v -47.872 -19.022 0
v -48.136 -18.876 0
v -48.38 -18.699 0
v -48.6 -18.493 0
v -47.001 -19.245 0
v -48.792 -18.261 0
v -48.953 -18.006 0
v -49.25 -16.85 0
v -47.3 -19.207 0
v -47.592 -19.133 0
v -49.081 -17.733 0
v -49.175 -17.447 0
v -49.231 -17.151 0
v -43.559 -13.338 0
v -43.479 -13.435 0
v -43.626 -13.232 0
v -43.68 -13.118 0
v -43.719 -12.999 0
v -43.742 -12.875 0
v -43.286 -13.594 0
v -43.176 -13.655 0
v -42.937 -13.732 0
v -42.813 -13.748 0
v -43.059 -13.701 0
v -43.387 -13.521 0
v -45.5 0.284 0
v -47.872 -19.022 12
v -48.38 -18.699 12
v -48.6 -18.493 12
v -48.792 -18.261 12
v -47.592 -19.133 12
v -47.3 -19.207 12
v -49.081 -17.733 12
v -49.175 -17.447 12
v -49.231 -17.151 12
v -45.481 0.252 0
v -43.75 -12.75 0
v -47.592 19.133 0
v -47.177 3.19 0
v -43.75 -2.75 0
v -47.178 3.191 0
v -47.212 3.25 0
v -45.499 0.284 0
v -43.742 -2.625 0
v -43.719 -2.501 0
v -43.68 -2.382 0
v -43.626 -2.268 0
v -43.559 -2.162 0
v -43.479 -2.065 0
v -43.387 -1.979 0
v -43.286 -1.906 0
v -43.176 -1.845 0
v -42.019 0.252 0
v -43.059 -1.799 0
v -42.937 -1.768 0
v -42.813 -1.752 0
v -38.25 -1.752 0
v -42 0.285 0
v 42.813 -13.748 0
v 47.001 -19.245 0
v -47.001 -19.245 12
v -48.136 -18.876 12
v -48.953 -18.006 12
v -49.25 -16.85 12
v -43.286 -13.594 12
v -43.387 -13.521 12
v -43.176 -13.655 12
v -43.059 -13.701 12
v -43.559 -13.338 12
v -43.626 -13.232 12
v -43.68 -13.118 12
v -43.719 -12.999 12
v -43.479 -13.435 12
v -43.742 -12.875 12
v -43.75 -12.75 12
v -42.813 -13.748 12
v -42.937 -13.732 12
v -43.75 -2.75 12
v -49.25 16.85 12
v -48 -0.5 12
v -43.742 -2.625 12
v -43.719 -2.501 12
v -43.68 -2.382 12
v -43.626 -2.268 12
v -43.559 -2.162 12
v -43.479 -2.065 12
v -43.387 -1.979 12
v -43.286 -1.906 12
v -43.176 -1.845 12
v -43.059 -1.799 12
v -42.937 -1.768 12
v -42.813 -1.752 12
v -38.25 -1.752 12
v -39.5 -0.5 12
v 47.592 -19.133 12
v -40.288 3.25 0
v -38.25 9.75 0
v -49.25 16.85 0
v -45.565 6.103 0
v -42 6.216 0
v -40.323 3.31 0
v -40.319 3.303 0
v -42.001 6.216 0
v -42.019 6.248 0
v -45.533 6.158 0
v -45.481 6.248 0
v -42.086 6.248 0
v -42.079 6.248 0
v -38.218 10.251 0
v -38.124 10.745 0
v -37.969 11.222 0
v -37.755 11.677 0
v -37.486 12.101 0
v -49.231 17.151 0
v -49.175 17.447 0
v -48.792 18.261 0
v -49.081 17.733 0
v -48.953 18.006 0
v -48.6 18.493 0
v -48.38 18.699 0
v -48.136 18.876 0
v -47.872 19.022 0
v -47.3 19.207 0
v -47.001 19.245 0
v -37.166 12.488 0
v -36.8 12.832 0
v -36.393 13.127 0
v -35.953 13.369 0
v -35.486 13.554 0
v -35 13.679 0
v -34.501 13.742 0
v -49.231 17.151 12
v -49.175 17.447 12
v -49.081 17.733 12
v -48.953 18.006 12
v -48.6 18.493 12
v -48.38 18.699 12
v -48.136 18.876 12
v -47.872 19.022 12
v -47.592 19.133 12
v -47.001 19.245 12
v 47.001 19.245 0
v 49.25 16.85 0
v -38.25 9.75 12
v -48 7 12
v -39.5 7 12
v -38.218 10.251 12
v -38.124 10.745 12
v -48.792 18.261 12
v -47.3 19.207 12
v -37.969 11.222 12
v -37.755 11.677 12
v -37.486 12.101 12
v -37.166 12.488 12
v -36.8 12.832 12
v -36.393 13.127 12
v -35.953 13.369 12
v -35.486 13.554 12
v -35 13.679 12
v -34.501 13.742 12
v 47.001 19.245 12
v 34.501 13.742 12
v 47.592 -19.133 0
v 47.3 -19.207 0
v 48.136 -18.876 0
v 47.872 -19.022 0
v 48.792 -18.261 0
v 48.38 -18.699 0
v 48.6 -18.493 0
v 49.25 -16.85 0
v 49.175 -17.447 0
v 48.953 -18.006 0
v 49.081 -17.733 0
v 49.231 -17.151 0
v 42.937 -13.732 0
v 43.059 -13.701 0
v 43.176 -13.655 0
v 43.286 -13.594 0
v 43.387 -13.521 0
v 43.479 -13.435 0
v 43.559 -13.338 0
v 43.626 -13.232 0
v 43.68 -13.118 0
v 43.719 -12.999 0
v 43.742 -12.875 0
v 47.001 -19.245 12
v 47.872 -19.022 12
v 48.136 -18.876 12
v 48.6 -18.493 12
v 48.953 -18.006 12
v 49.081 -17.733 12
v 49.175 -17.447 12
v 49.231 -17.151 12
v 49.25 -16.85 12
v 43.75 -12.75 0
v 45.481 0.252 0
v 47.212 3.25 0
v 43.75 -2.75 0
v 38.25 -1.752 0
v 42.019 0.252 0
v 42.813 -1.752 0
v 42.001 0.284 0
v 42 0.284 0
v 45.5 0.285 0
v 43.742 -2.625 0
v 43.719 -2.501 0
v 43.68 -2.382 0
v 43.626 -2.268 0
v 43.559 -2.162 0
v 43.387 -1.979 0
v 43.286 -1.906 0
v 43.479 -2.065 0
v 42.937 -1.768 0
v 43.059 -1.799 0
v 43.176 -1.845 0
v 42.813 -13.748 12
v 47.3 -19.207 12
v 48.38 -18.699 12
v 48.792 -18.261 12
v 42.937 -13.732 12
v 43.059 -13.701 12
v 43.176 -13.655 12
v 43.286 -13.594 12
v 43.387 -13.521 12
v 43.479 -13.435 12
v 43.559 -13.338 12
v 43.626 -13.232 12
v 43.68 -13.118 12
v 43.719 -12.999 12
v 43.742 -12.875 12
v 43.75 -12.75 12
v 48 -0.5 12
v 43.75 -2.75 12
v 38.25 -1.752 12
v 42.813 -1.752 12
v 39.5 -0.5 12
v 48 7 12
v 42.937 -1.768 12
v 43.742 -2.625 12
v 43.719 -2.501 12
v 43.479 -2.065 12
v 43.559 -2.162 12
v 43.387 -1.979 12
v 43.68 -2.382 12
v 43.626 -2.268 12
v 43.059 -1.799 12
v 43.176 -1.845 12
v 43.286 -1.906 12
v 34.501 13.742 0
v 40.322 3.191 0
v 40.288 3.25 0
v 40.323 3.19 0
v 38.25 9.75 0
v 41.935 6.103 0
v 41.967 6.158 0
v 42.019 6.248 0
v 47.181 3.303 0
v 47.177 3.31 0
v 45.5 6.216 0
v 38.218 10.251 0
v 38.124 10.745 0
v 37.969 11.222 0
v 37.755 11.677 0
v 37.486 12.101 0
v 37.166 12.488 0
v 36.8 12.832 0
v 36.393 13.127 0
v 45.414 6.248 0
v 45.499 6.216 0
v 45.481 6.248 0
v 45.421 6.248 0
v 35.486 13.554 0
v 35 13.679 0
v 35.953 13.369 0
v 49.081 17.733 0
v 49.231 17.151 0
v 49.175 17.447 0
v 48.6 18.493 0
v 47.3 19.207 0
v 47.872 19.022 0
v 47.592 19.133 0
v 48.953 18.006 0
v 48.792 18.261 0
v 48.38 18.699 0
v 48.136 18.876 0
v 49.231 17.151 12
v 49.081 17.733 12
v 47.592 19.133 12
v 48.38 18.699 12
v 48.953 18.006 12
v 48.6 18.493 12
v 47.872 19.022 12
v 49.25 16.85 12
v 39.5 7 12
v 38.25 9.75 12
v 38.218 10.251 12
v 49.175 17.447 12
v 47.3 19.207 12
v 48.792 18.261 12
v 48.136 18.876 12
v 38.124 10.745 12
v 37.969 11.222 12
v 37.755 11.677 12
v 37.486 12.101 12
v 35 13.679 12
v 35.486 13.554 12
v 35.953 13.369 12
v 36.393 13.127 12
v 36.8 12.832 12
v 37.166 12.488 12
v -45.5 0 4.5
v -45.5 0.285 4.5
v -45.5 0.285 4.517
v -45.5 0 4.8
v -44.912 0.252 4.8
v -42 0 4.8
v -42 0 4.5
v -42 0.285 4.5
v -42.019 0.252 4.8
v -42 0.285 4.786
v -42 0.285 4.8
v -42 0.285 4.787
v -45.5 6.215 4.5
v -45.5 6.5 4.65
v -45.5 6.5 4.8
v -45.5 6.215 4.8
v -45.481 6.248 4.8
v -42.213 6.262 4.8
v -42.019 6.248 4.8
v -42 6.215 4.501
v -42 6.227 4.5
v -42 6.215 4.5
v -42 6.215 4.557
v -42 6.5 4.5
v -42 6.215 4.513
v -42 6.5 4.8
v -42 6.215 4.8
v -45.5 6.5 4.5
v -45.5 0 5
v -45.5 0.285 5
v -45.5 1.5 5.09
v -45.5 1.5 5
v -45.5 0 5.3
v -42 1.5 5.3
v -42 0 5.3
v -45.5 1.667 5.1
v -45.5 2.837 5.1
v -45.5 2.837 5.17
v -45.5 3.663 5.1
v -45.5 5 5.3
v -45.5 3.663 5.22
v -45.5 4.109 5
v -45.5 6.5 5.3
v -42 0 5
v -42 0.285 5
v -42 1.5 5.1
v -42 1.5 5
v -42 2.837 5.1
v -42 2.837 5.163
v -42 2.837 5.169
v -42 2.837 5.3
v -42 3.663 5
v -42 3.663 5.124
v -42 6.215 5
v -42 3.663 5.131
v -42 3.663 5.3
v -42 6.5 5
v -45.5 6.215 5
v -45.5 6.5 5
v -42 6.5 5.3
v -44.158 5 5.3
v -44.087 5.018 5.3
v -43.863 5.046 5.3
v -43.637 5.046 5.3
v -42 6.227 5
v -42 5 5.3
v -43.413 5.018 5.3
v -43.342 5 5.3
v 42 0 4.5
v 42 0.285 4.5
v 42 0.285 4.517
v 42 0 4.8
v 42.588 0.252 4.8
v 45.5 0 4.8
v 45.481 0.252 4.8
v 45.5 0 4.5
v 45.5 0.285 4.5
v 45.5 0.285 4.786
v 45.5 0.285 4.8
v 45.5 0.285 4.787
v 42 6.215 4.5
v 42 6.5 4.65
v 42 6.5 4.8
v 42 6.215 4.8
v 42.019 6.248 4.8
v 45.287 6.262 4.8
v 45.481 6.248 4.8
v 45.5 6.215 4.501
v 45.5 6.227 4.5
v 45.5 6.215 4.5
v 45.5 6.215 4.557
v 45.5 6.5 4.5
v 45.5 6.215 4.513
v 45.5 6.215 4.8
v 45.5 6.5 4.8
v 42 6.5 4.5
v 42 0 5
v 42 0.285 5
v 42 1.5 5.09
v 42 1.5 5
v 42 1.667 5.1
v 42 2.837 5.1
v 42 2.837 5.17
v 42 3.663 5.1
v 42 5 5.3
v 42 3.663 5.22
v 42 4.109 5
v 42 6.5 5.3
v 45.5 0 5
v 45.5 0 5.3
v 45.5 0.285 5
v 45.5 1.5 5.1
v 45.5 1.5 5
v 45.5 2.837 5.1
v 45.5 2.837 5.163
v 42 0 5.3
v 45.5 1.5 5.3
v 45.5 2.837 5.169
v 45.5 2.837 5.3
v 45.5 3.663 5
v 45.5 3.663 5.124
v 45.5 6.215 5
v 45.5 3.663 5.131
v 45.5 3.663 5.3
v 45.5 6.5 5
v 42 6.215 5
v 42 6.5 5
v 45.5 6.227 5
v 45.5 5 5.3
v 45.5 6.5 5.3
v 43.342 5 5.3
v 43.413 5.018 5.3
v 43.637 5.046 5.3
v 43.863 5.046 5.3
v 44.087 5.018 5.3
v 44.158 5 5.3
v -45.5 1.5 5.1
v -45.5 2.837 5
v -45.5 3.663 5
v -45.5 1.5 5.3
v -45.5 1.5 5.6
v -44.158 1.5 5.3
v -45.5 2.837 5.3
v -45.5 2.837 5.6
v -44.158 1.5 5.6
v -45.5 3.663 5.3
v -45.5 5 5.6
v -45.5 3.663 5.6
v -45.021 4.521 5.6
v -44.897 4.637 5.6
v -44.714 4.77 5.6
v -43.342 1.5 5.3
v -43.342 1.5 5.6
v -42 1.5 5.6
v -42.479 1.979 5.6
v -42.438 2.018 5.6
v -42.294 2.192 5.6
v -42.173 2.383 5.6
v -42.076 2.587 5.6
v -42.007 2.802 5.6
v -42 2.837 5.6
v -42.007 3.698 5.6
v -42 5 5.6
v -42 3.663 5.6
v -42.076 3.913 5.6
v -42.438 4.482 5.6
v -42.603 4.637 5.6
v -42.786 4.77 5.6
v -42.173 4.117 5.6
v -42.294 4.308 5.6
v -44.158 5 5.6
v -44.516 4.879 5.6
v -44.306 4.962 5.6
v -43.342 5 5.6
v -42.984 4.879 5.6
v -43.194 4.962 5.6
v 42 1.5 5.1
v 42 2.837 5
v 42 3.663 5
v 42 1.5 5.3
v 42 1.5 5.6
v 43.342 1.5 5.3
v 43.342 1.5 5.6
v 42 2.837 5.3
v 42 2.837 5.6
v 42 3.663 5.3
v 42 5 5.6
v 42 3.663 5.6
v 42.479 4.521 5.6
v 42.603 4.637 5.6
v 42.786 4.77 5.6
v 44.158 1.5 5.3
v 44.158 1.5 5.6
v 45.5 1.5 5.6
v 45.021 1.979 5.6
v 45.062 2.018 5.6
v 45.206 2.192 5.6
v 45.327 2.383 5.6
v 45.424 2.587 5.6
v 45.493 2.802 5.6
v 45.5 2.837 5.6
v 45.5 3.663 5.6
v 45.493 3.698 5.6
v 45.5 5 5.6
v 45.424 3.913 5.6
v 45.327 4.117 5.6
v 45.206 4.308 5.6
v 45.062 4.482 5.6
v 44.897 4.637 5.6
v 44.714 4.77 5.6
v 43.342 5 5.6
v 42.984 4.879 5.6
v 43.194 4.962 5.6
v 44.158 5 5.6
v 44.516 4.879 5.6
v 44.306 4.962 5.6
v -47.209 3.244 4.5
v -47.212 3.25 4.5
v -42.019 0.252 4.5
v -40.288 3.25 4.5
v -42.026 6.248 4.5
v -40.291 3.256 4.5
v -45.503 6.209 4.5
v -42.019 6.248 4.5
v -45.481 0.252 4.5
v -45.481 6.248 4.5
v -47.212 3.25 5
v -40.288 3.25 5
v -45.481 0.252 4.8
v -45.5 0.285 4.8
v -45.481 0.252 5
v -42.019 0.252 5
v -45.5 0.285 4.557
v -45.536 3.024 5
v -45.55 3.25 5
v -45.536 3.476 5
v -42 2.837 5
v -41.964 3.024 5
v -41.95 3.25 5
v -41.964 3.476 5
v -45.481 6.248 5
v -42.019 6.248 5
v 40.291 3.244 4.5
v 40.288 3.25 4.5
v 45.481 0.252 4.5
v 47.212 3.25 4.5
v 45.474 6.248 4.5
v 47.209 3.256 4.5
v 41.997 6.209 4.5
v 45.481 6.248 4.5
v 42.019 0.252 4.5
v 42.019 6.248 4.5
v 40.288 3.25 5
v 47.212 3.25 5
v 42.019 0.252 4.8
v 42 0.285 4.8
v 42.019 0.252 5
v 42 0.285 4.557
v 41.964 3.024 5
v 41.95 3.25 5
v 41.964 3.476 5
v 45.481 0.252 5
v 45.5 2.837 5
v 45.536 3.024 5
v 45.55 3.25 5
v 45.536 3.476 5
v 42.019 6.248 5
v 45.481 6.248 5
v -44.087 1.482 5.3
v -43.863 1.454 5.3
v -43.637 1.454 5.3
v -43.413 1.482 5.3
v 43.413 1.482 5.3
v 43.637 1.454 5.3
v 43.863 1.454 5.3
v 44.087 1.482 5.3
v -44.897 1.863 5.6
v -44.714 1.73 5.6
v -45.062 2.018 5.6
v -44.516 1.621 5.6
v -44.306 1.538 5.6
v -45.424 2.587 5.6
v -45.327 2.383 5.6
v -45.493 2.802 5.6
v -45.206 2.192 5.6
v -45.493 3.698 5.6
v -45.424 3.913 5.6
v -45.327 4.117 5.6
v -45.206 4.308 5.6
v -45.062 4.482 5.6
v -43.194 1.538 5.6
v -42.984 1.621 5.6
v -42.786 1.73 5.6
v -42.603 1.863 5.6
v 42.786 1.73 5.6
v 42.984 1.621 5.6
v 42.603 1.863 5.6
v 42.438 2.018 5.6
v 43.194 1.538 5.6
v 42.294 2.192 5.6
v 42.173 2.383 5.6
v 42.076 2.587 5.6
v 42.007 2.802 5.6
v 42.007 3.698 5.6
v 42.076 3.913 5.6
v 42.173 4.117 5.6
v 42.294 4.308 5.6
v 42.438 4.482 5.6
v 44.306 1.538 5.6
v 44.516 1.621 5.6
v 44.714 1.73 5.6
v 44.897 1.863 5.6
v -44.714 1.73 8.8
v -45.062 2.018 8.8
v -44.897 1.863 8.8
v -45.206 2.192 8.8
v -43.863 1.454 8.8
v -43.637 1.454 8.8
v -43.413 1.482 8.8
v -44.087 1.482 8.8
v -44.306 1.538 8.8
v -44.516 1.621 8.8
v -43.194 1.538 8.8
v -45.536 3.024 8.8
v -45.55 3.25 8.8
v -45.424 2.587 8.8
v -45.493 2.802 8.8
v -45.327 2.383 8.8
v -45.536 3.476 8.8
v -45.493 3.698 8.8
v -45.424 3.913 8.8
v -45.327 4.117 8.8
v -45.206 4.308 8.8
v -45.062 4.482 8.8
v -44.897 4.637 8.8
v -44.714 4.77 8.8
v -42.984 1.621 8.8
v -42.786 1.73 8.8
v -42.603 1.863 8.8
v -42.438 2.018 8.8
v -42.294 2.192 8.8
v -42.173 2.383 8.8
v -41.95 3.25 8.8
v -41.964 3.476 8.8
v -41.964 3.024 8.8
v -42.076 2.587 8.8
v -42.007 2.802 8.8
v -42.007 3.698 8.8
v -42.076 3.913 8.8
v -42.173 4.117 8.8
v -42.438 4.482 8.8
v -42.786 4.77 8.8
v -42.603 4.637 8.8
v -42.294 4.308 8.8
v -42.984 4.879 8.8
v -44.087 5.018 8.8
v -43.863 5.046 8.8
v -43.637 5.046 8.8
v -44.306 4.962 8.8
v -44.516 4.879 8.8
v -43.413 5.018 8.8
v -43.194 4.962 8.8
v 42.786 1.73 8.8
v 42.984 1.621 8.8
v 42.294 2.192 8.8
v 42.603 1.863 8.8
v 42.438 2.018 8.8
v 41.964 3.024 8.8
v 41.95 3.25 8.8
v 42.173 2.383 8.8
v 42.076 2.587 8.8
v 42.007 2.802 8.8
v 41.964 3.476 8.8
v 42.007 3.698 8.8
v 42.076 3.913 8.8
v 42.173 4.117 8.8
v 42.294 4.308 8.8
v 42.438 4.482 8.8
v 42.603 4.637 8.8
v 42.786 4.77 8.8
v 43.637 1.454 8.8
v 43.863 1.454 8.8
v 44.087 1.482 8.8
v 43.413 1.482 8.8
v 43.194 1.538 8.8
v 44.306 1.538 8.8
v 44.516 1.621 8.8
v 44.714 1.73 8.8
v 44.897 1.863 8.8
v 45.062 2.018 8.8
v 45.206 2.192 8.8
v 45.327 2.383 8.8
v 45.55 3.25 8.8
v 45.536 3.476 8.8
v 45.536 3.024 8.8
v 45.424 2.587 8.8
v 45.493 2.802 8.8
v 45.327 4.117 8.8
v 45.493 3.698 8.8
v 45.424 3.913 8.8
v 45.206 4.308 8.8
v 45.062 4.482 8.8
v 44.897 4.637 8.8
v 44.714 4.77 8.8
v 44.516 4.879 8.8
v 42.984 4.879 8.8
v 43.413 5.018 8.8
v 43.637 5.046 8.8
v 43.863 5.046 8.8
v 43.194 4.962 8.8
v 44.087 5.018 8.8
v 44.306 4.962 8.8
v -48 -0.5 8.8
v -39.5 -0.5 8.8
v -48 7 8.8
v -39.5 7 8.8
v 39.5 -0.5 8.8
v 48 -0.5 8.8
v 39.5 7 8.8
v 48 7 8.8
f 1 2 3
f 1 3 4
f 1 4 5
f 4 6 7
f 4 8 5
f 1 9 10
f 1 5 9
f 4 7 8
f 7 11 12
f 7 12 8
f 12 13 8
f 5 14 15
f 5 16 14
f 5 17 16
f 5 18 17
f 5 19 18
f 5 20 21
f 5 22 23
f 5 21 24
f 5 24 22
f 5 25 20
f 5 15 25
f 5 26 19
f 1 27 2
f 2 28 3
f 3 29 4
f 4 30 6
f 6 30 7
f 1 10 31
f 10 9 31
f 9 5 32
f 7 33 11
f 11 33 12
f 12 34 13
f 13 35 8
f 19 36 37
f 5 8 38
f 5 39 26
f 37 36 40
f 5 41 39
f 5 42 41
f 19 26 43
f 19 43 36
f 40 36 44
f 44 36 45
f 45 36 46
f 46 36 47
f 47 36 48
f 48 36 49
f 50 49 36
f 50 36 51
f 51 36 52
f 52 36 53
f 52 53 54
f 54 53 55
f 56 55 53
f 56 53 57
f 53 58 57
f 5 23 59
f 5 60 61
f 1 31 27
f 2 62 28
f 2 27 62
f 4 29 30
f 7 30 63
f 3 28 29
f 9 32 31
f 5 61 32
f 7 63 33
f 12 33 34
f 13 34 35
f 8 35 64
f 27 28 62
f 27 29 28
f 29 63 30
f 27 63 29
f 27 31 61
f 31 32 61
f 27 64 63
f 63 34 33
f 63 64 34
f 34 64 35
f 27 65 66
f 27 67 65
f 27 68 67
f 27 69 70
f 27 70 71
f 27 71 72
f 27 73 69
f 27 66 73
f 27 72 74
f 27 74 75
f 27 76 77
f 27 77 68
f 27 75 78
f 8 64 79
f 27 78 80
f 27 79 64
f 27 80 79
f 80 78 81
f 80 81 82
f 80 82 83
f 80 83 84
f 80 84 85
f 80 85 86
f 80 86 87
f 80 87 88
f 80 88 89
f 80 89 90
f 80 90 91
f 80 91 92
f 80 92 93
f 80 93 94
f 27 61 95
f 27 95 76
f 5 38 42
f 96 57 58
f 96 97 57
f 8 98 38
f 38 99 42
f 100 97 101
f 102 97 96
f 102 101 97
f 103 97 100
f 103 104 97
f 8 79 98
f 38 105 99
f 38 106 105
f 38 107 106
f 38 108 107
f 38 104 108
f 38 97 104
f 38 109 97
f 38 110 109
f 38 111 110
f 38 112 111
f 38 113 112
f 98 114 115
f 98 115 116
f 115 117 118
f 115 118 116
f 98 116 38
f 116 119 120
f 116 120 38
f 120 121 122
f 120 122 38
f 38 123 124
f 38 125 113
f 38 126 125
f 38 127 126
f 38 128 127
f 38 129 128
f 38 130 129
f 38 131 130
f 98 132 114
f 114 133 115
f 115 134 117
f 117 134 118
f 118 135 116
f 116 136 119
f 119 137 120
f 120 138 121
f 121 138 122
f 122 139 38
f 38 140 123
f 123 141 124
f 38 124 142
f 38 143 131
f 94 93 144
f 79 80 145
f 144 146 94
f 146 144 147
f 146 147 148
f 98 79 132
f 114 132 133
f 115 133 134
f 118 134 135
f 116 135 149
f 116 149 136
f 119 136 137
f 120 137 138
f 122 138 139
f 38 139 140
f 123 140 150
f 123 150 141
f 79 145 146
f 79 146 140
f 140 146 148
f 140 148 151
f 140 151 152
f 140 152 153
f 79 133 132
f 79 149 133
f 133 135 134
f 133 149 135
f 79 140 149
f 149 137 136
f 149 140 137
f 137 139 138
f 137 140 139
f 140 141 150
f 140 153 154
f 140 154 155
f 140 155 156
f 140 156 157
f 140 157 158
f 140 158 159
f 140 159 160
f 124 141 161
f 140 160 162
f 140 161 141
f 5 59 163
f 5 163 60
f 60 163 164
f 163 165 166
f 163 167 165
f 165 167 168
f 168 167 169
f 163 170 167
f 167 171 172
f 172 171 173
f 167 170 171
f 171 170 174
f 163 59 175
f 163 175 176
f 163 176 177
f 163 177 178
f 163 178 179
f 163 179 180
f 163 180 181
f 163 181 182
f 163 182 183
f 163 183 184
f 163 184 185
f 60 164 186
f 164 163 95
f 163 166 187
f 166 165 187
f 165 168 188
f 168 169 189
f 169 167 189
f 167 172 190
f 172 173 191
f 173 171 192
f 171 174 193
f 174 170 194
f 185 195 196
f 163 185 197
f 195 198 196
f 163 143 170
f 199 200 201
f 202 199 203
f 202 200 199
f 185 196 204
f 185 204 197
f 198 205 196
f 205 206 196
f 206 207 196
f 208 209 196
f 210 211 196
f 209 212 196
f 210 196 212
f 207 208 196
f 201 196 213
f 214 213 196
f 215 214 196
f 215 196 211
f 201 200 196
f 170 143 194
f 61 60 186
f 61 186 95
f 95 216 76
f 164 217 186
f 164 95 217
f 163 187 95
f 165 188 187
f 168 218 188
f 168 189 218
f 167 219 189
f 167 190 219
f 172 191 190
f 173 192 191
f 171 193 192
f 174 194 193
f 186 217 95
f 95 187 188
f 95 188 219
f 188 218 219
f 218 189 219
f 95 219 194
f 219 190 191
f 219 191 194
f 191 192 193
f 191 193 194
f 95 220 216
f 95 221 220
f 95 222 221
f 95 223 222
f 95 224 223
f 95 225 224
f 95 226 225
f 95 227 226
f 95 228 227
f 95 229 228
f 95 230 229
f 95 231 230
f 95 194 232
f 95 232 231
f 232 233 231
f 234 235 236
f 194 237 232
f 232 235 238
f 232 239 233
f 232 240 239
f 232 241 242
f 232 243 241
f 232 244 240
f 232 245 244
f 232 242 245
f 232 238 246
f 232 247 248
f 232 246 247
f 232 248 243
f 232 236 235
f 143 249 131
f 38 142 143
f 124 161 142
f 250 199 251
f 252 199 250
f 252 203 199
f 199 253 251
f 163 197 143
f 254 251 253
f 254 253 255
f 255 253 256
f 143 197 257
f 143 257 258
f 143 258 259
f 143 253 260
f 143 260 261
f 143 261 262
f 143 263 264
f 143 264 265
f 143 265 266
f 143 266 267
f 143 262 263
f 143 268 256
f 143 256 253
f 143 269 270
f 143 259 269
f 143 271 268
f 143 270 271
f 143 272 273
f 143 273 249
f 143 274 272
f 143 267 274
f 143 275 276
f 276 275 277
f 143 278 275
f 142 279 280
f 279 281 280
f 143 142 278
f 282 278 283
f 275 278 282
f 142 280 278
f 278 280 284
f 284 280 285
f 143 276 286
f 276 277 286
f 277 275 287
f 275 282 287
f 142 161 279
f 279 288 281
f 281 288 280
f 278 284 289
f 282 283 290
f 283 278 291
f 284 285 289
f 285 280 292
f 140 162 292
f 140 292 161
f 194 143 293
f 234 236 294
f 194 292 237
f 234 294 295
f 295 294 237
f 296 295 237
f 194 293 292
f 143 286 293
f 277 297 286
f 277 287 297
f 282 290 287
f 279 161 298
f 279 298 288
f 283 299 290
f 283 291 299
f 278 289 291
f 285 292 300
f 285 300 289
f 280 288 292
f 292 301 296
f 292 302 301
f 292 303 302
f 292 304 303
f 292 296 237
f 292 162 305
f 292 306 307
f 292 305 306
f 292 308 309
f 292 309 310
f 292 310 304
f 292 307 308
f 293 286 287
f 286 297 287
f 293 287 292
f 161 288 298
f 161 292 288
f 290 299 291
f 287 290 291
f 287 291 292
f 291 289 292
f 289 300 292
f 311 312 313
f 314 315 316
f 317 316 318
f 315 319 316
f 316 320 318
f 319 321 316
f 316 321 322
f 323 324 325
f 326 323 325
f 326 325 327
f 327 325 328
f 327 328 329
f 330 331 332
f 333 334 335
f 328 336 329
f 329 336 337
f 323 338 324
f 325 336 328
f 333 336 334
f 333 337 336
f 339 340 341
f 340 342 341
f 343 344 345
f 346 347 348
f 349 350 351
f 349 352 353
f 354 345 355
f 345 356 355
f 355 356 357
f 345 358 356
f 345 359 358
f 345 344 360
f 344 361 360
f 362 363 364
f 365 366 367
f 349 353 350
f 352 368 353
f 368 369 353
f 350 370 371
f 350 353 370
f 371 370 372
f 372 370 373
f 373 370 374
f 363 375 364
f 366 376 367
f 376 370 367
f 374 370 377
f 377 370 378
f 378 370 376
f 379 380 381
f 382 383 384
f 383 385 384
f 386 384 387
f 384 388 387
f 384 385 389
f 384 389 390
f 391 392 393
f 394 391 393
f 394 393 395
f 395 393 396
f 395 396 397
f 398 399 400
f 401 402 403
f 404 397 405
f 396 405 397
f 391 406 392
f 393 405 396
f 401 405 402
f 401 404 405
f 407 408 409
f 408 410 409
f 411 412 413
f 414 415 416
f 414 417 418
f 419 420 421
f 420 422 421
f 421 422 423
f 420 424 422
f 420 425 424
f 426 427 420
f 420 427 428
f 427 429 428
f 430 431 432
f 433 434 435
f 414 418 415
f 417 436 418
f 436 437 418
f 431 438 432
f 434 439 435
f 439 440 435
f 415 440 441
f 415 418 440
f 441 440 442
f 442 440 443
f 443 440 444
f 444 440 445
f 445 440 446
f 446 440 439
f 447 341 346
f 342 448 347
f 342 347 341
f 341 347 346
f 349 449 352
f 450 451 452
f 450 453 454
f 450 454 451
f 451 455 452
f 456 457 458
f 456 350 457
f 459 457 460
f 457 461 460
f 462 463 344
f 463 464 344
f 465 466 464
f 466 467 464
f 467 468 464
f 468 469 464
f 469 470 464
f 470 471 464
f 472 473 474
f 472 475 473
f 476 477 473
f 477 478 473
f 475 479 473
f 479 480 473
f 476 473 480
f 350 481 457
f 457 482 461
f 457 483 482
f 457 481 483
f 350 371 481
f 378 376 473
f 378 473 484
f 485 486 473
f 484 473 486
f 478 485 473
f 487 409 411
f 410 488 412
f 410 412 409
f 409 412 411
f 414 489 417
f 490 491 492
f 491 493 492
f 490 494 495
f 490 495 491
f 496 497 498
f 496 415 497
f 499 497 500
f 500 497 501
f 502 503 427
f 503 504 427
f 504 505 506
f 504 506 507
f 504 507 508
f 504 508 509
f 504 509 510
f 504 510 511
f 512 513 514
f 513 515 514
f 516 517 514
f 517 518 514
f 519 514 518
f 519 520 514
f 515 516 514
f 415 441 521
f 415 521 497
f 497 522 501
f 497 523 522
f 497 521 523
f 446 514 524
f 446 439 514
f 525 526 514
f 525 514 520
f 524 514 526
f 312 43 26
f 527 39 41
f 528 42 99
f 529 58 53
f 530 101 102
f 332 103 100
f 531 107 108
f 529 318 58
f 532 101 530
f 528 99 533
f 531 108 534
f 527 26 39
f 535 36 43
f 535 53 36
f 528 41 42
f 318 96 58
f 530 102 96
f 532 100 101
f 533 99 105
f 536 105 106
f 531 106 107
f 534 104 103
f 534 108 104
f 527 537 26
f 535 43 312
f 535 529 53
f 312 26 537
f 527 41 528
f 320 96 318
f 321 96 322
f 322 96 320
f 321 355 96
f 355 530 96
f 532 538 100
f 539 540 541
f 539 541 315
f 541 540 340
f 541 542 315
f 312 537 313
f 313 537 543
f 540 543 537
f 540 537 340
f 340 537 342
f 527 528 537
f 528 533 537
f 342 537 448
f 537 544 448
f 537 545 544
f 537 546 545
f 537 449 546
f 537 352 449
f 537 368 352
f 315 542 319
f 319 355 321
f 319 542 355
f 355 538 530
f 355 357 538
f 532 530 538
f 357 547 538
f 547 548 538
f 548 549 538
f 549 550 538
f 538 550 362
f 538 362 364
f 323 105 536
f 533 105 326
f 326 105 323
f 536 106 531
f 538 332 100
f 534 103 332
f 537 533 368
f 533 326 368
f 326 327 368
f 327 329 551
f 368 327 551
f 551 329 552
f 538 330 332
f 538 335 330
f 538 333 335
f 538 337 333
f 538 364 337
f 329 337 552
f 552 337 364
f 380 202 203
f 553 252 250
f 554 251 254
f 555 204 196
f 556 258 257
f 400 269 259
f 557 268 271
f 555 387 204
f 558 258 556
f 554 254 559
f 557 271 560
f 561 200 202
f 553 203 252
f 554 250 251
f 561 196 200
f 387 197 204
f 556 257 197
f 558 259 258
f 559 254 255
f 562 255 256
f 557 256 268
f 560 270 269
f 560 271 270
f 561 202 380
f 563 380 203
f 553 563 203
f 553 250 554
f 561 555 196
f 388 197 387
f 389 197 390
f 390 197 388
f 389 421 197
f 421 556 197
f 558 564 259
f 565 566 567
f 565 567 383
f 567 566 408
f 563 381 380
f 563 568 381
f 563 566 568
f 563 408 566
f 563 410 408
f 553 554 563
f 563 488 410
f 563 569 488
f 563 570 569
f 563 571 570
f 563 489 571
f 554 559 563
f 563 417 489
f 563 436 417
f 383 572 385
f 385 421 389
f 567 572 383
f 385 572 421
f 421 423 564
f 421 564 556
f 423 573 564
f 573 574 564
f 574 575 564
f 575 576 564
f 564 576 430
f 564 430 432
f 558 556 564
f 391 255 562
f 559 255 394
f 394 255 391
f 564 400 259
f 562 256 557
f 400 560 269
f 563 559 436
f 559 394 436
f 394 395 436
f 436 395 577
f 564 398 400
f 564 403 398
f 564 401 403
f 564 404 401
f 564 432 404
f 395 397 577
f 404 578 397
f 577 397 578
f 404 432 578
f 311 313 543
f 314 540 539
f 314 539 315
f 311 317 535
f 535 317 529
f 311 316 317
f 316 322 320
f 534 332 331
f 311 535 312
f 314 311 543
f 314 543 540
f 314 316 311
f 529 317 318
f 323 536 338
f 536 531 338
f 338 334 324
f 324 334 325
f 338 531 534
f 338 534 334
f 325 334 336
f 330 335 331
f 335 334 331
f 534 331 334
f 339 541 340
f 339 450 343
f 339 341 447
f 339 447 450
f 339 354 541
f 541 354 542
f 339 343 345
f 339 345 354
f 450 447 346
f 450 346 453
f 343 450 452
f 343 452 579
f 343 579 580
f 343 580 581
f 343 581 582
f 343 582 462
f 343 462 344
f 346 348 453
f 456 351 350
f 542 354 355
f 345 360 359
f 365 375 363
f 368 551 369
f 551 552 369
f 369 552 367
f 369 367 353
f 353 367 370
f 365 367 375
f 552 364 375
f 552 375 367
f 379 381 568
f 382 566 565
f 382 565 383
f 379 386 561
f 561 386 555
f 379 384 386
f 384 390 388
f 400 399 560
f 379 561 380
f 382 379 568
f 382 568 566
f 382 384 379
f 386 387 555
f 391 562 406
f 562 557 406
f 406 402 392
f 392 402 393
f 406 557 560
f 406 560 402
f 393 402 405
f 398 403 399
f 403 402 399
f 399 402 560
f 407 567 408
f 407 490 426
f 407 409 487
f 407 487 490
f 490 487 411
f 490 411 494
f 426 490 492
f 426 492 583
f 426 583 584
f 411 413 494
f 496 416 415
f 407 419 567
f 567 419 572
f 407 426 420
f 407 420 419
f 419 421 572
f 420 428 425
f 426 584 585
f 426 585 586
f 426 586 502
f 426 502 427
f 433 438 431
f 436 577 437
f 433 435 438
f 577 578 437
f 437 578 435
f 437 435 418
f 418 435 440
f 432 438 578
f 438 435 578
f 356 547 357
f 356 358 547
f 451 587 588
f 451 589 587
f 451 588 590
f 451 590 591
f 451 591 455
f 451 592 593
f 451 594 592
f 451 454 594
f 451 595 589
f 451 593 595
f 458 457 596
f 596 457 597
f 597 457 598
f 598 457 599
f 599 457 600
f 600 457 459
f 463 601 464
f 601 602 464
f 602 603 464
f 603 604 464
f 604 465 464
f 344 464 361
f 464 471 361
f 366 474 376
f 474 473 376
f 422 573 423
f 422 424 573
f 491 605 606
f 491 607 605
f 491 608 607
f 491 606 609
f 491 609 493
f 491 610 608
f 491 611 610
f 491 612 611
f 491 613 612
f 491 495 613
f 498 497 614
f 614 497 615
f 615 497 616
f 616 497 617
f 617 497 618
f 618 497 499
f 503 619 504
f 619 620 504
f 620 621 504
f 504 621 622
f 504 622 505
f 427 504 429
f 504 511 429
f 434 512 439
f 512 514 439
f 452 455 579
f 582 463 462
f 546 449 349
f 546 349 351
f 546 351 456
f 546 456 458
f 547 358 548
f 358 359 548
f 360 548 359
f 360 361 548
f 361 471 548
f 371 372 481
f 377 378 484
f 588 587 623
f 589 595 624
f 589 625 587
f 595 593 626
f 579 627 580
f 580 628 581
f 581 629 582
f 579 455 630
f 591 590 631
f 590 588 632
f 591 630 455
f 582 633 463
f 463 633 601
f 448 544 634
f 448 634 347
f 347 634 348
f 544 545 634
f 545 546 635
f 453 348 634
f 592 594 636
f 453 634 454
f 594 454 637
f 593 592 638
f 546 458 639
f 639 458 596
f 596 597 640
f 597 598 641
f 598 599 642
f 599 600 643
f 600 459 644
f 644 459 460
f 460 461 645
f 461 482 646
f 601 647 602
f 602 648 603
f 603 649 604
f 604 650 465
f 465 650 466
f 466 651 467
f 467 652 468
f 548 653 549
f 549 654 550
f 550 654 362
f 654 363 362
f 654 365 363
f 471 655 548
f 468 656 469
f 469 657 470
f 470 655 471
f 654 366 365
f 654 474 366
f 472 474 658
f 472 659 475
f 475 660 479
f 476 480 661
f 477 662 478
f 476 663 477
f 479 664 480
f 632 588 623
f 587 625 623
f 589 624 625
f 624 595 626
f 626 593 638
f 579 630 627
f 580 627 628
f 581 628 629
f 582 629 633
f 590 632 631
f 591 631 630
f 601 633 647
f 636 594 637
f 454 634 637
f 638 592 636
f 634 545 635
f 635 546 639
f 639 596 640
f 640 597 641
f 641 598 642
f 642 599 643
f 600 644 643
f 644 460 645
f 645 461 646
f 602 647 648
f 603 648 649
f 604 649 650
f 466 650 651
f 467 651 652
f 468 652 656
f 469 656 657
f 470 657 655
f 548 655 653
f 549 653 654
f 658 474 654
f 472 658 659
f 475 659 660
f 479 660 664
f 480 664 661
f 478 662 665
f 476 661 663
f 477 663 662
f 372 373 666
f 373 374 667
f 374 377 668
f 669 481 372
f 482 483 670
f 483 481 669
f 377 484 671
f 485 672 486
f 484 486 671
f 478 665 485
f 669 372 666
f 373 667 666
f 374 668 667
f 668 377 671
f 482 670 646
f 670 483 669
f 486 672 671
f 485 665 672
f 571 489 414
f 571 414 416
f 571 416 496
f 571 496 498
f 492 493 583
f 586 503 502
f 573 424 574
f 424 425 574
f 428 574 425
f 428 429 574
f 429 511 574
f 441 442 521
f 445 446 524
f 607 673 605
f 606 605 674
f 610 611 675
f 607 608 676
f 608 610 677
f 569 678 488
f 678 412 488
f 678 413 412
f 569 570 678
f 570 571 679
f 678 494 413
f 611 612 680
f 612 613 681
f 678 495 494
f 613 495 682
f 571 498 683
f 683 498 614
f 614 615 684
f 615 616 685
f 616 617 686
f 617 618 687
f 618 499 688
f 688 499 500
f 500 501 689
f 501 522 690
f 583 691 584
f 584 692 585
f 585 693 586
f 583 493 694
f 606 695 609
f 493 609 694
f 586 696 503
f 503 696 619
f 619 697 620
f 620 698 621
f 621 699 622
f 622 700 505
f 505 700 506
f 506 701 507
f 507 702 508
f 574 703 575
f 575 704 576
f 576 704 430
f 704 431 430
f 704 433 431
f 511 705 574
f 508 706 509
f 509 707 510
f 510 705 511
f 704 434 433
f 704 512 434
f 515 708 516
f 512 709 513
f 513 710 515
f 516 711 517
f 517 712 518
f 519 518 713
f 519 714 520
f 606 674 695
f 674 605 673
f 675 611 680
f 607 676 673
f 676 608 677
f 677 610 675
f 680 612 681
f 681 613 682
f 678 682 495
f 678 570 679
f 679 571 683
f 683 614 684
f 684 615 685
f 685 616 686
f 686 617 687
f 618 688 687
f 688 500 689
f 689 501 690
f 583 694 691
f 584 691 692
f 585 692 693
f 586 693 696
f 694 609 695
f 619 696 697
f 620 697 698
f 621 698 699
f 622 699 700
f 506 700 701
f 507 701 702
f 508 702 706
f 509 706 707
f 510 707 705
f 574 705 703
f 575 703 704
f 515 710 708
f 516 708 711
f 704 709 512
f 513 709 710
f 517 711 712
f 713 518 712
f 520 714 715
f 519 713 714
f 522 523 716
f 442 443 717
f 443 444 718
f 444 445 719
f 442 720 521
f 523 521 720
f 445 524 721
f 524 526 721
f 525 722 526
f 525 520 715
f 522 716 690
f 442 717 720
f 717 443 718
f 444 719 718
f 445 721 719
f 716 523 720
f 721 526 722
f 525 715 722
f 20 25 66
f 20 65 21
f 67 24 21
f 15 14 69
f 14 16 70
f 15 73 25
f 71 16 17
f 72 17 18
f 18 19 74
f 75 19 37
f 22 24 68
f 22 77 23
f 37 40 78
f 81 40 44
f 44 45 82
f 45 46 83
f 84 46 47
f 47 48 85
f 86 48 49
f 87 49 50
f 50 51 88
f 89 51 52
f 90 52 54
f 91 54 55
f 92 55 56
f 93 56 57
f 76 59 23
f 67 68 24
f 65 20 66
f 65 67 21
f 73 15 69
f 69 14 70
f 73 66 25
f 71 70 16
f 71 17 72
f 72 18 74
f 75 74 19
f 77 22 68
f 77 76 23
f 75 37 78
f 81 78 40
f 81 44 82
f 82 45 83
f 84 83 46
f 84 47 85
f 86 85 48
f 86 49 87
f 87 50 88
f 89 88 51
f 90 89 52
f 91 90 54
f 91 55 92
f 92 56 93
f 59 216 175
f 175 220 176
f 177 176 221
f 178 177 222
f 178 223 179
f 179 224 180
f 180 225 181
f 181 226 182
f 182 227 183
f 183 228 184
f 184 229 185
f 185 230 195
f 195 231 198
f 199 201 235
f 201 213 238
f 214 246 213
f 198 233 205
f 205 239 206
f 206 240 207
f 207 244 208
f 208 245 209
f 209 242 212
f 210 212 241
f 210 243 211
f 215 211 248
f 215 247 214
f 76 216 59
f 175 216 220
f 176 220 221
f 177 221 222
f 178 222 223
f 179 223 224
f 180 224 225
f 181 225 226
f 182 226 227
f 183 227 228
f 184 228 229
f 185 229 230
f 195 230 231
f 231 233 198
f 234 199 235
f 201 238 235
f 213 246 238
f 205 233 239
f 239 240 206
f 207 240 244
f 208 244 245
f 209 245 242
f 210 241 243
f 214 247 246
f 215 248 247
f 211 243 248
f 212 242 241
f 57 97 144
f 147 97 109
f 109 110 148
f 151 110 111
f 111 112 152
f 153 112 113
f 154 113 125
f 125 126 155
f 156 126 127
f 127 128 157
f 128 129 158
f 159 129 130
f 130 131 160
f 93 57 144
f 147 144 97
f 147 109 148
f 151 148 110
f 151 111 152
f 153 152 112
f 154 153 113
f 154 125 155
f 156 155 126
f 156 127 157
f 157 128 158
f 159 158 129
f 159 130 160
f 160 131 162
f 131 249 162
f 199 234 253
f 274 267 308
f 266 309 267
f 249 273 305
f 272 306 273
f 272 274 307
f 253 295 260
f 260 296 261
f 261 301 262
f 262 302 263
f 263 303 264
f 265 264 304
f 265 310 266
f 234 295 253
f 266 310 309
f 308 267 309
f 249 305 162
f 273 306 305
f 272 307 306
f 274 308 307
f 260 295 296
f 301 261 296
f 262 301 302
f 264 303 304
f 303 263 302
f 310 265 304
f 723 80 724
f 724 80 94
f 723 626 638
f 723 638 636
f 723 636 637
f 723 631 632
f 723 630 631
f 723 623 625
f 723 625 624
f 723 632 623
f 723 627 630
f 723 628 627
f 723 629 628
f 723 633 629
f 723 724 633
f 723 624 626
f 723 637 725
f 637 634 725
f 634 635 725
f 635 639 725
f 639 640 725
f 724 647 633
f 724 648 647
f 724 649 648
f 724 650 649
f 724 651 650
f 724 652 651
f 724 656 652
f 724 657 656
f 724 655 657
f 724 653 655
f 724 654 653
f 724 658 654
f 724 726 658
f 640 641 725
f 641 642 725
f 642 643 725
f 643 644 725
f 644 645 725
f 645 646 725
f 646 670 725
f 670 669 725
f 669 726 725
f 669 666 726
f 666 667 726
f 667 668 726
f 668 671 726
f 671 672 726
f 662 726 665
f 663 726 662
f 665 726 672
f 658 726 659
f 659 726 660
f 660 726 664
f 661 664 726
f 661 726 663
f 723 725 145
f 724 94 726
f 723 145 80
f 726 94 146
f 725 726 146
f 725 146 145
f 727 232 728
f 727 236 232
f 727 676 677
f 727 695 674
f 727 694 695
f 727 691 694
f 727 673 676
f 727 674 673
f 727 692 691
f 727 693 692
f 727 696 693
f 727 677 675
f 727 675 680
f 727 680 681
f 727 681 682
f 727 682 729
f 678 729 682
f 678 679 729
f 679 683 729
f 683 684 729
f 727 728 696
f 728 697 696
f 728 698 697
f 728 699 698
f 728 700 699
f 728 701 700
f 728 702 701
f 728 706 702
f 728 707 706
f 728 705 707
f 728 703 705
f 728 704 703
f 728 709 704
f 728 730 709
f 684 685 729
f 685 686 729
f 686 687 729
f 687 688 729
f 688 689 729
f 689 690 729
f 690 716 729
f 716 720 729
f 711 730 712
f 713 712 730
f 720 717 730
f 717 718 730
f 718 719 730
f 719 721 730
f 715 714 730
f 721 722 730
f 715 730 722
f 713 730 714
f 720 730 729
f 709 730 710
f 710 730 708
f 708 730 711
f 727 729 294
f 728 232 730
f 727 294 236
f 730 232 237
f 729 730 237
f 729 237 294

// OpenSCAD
$fn = 50;

difference() {
	union() {
		hull() {
			translate(v = [-46.85, 16.85, 0]) {
				cylinder(h = 12.0, r = 2.4);
			}
			translate(v = [46.85, 16.85, 0]) {
				cylinder(h = 12.0, r = 2.4);
			}
			translate(v = [-46.85, -16.85, 0]) {
				cylinder(h = 12.0, r = 2.4);
			}
			translate(v = [46.85, -16.85, 0]) {
				cylinder(h = 12.0, r = 2.4);
			}
		}
	}
	union() {
		translate(v = [-43.75, 3.25, 18.0]) {
			rotate(a = [0, 0, 0]) {
				difference() {
					union() {
						translate(v = [0, 0, -13.5]) {
							rotate(a = [0, 0, 0]) {
								difference() {
									union() {
										translate(v = [-1.75, -3.25, -250.3]) {
											cube(size = [3.5, 6.5, 0.3]);
										}
										translate(v = [-1.75, -1.75, -250.60000000000002]) {
											cube(size = [3.5, 3.5, 0.3]);
										}
										translate(v = [-1.75, -3.25, 0]) {
											cube(size = [3.5, 6.5, 0.3]);
										}
										translate(v = [-1.75, -1.75, 0.3]) {
											cube(size = [3.5, 3.5, 0.3]);
										}
										translate(v = [0, 0, -250]) {
											linear_extrude(height = 250) {
												polygon(points = [[3.4619999999999997, 0.0], [1.7310000000000003, 2.9981799479017264], [-1.7309999999999992, 2.9981799479017264], [-3.4619999999999997, 4.2397272186481365e-16], [-1.7310000000000014, -2.998179947901726], [1.7309999999999977, -2.9981799479017277]]);
											}
										}
										translate(v = [-1.75, -3.25, -250.3]) {
											cube(size = [3.5, 6.5, 0.3]);
										}
										translate(v = [-1.75, -1.75, -250.60000000000002]) {
											cube(size = [3.5, 3.5, 0.3]);
										}
										translate(v = [-1.75, -3.25, 0]) {
											cube(size = [3.5, 6.5, 0.3]);
										}
										translate(v = [-1.75, -1.75, 0.3]) {
											cube(size = [3.5, 3.5, 0.3]);
										}
										translate(v = [-1.75, -3.25, -250.3]) {
											cube(size = [3.5, 6.5, 0.3]);
										}
										translate(v = [-1.75, -1.75, -250.60000000000002]) {
											cube(size = [3.5, 3.5, 0.3]);
										}
										translate(v = [-1.75, -3.25, 0]) {
											cube(size = [3.5, 6.5, 0.3]);
										}
										translate(v = [-1.75, -1.75, 0.3]) {
											cube(size = [3.5, 3.5, 0.3]);
										}
									}
									union();
								}
							}
						}
						translate(v = [0, 0, -13.0]) {
							rotate(a = [0, 0, 0]) {
								difference() {
									union() {
										translate(v = [-1.75, -3.25, -250.3]) {
											cube(size = [3.5, 6.5, 0.3]);
										}
										translate(v = [-1.75, -1.75, -250.60000000000002]) {
											cube(size = [3.5, 3.5, 0.3]);
										}
										translate(v = [-1.75, -3.25, 0]) {
											cube(size = [3.5, 6.5, 0.3]);
										}
										translate(v = [-1.75, -1.75, 0.3]) {
											cube(size = [3.5, 3.5, 0.3]);
										}
										translate(v = [0, 0, -250]) {
											linear_extrude(height = 250) {
												polygon(points = [[3.4619999999999997, 0.0], [1.7310000000000003, 2.9981799479017264], [-1.7309999999999992, 2.9981799479017264], [-3.4619999999999997, 4.2397272186481365e-16], [-1.7310000000000014, -2.998179947901726], [1.7309999999999977, -2.9981799479017277]]);
											}
										}
										translate(v = [-1.75, -3.25, -250.3]) {
											cube(size = [3.5, 6.5, 0.3]);
										}
										translate(v = [-1.75, -1.75, -250.60000000000002]) {
											cube(size = [3.5, 3.5, 0.3]);
										}
										translate(v = [-1.75, -3.25, 0]) {
											cube(size = [3.5, 6.5, 0.3]);
										}
										translate(v = [-1.75, -1.75, 0.3]) {
											cube(size = [3.5, 3.5, 0.3]);
										}
										translate(v = [-1.75, -3.25, -250.3]) {
											cube(size = [3.5, 6.5, 0.3]);
										}
										translate(v = [-1.75, -1.75, -250.60000000000002]) {
											cube(size = [3.5, 3.5, 0.3]);
										}
										translate(v = [-1.75, -3.25, 0]) {
											cube(size = [3.5, 6.5, 0.3]);
										}
										translate(v = [-1.75, -1.75, 0.3]) {
											cube(size = [3.5, 3.5, 0.3]);
										}
									}
									union();
								}
							}
						}
						translate(v = [0, 0, -13.5]) {
							rotate(a = [0, 0, 0]) {
								difference() {
									union() {
										translate(v = [-1.75, -3.25, -250.3]) {
											cube(size = [3.5, 6.5, 0.3]);
										}
										translate(v = [-1.75, -1.75, -250.60000000000002]) {
											cube(size = [3.5, 3.5, 0.3]);
										}
										translate(v = [-1.75, -3.25, 0]) {
											cube(size = [3.5, 6.5, 0.3]);
										}
										translate(v = [-1.75, -1.75, 0.3]) {
											cube(size = [3.5, 3.5, 0.3]);
										}
										translate(v = [0, 0, -250]) {
											linear_extrude(height = 250) {
												polygon(points = [[3.4619999999999997, 0.0], [1.7310000000000003, 2.9981799479017264], [-1.7309999999999992, 2.9981799479017264], [-3.4619999999999997, 4.2397272186481365e-16], [-1.7310000000000014, -2.998179947901726], [1.7309999999999977, -2.9981799479017277]]);
											}
										}
										translate(v = [-1.75, -3.25, -250.3]) {
											cube(size = [3.5, 6.5, 0.3]);
										}
										translate(v = [-1.75, -1.75, -250.60000000000002]) {
											cube(size = [3.5, 3.5, 0.3]);
										}
										translate(v = [-1.75, -3.25, 0]) {
											cube(size = [3.5, 6.5, 0.3]);
										}
										translate(v = [-1.75, -1.75, 0.3]) {
											cube(size = [3.5, 3.5, 0.3]);
										}
										translate(v = [-1.75, -3.25, -250.3]) {
											cube(size = [3.5, 6.5, 0.3]);
										}
										translate(v = [-1.75, -1.75, -250.60000000000002]) {
											cube(size = [3.5, 3.5, 0.3]);
										}
										translate(v = [-1.75, -3.25, 0]) {
											cube(size = [3.5, 6.5, 0.3]);
										}
										translate(v = [-1.75, -1.75, 0.3]) {
											cube(size = [3.5, 3.5, 0.3]);
										}
									}
									union();
								}
							}
						}
						translate(v = [0, 0, -16.0]) {
							cylinder(h = 16.0, r = 1.5);
						}
						cylinder(h = 253.2, r = 3.0);
						translate(v = [0, 0, -16.0]) {
							cylinder(h = 16.0, r = 1.8);
						}
						translate(v = [-1.75, -3.25, -0.3]) {
							cube(size = [3.5, 6.5, 0.3]);
						}
						translate(v = [-1.75, -1.75, -0.6]) {
							cube(size = [3.5, 3.5, 0.3]);
						}
						translate(v = [0, 0, -16.0]) {
							cylinder(h = 16.0, r = 1.5);
						}
					}
					union();
				}
			}
		}
		translate(v = [43.75, 3.25, 18.0]) {
			rotate(a = [0, 0, 0]) {
				difference() {
					union() {
						translate(v = [0, 0, -13.5]) {
							rotate(a = [0, 0, 0]) {
								difference() {
									union() {
										translate(v = [-1.75, -3.25, -250.3]) {
											cube(size = [3.5, 6.5, 0.3]);
										}
										translate(v = [-1.75, -1.75, -250.60000000000002]) {
											cube(size = [3.5, 3.5, 0.3]);
										}
										translate(v = [-1.75, -3.25, 0]) {
											cube(size = [3.5, 6.5, 0.3]);
										}
										translate(v = [-1.75, -1.75, 0.3]) {
											cube(size = [3.5, 3.5, 0.3]);
										}
										translate(v = [0, 0, -250]) {
											linear_extrude(height = 250) {
												polygon(points = [[3.4619999999999997, 0.0], [1.7310000000000003, 2.9981799479017264], [-1.7309999999999992, 2.9981799479017264], [-3.4619999999999997, 4.2397272186481365e-16], [-1.7310000000000014, -2.998179947901726], [1.7309999999999977, -2.9981799479017277]]);
											}
										}
										translate(v = [-1.75, -3.25, -250.3]) {
											cube(size = [3.5, 6.5, 0.3]);
										}
										translate(v = [-1.75, -1.75, -250.60000000000002]) {
											cube(size = [3.5, 3.5, 0.3]);
										}
										translate(v = [-1.75, -3.25, 0]) {
											cube(size = [3.5, 6.5, 0.3]);
										}
										translate(v = [-1.75, -1.75, 0.3]) {
											cube(size = [3.5, 3.5, 0.3]);
										}
										translate(v = [-1.75, -3.25, -250.3]) {
											cube(size = [3.5, 6.5, 0.3]);
										}
										translate(v = [-1.75, -1.75, -250.60000000000002]) {
											cube(size = [3.5, 3.5, 0.3]);
										}
										translate(v = [-1.75, -3.25, 0]) {
											cube(size = [3.5, 6.5, 0.3]);
										}
										translate(v = [-1.75, -1.75, 0.3]) {
											cube(size = [3.5, 3.5, 0.3]);
										}
									}
									union();
								}
							}
						}
						translate(v = [0, 0, -13.0]) {
							rotate(a = [0, 0, 0]) {
								difference() {
									union() {
										translate(v = [-1.75, -3.25, -250.3]) {
											cube(size = [3.5, 6.5, 0.3]);
										}
										translate(v = [-1.75, -1.75, -250.60000000000002]) {
											cube(size = [3.5, 3.5, 0.3]);
										}
										translate(v = [-1.75, -3.25, 0]) {
											cube(size = [3.5, 6.5, 0.3]);
										}
										translate(v = [-1.75, -1.75, 0.3]) {
											cube(size = [3.5, 3.5, 0.3]);
										}
										translate(v = [0, 0, -250]) {
											linear_extrude(height = 250) {
												polygon(points = [[3.4619999999999997, 0.0], [1.7310000000000003, 2.9981799479017264], [-1.7309999999999992, 2.9981799479017264], [-3.4619999999999997, 4.2397272186481365e-16], [-1.7310000000000014, -2.998179947901726], [1.7309999999999977, -2.9981799479017277]]);
											}
										}
										translate(v = [-1.75, -3.25, -250.3]) {
											cube(size = [3.5, 6.5, 0.3]);
										}
										translate(v = [-1.75, -1.75, -250.60000000000002]) {
											cube(size = [3.5, 3.5, 0.3]);
										}
										translate(v = [-1.75, -3.25, 0]) {
											cube(size = [3.5, 6.5, 0.3]);
										}
										translate(v = [-1.75, -1.75, 0.3]) {
											cube(size = [3.5, 3.5, 0.3]);
										}
										translate(v = [-1.75, -3.25, -250.3]) {
											cube(size = [3.5, 6.5, 0.3]);
										}
										translate(v = [-1.75, -1.75, -250.60000000000002]) {
											cube(size = [3.5, 3.5, 0.3]);
										}
										translate(v = [-1.75, -3.25, 0]) {
											cube(size = [3.5, 6.5, 0.3]);
										}
										translate(v = [-1.75, -1.75, 0.3]) {
											cube(size = [3.5, 3.5, 0.3]);
										}
									}
									union();
								}
							}
						}
						translate(v = [0, 0, -13.5]) {
							rotate(a = [0, 0, 0]) {
								difference() {
									union() {
										translate(v = [-1.75, -3.25, -250.3]) {
											cube(size = [3.5, 6.5, 0.3]);
										}
										translate(v = [-1.75, -1.75, -250.60000000000002]) {
											cube(size = [3.5, 3.5, 0.3]);
										}
										translate(v = [-1.75, -3.25, 0]) {
											cube(size = [3.5, 6.5, 0.3]);
										}
										translate(v = [-1.75, -1.75, 0.3]) {
											cube(size = [3.5, 3.5, 0.3]);
										}
										translate(v = [0, 0, -250]) {
											linear_extrude(height = 250) {
												polygon(points = [[3.4619999999999997, 0.0], [1.7310000000000003, 2.9981799479017264], [-1.7309999999999992, 2.9981799479017264], [-3.4619999999999997, 4.2397272186481365e-16], [-1.7310000000000014, -2.998179947901726], [1.7309999999999977, -2.9981799479017277]]);
											}
										}
										translate(v = [-1.75, -3.25, -250.3]) {
											cube(size = [3.5, 6.5, 0.3]);
										}
										translate(v = [-1.75, -1.75, -250.60000000000002]) {
											cube(size = [3.5, 3.5, 0.3]);
										}
										translate(v = [-1.75, -3.25, 0]) {
											cube(size = [3.5, 6.5, 0.3]);
										}
										translate(v = [-1.75, -1.75, 0.3]) {
											cube(size = [3.5, 3.5, 0.3]);
										}
										translate(v = [-1.75, -3.25, -250.3]) {
											cube(size = [3.5, 6.5, 0.3]);
										}
										translate(v = [-1.75, -1.75, -250.60000000000002]) {
											cube(size = [3.5, 3.5, 0.3]);
										}
										translate(v = [-1.75, -3.25, 0]) {
											cube(size = [3.5, 6.5, 0.3]);
										}
										translate(v = [-1.75, -1.75, 0.3]) {
											cube(size = [3.5, 3.5, 0.3]);
										}
									}
									union();
								}
							}
						}
						translate(v = [0, 0, -16.0]) {
							cylinder(h = 16.0, r = 1.5);
						}
						cylinder(h = 253.2, r = 3.0);
						translate(v = [0, 0, -16.0]) {
							cylinder(h = 16.0, r = 1.8);
						}
						translate(v = [-1.75, -3.25, -0.3]) {
							cube(size = [3.5, 6.5, 0.3]);
						}
						translate(v = [-1.75, -1.75, -0.6]) {
							cube(size = [3.5, 3.5, 0.3]);
						}
						translate(v = [0, 0, -16.0]) {
							cylinder(h = 16.0, r = 1.5);
						}
					}
					union();
				}
			}
		}
		translate(v = [0.0, -7.75, -0.1]) {
			hull() {
				translate(v = [-42.75, 5.0, 0]) {
					cylinder(h = 12.2, r = 1.0);
				}
				translate(v = [42.75, 5.0, 0]) {
					cylinder(h = 12.2, r = 1.0);
				}
				translate(v = [-42.75, -5.0, 0]) {
					cylinder(h = 12.2, r = 1.0);
				}
				translate(v = [42.75, -5.0, 0]) {
					cylinder(h = 12.2, r = 1.0);
				}
			}
		}
		translate(v = [0.0, 0.0, -0.1]) {
			hull() {
				translate(v = [-34.25, 9.75, 0]) {
					cylinder(h = 12.2, r = 4.0);
				}
				translate(v = [34.25, 9.75, 0]) {
					cylinder(h = 12.2, r = 4.0);
				}
				translate(v = [-34.25, -9.75, 0]) {
					cylinder(h = 12.2, r = 4.0);
				}
				translate(v = [34.25, -9.75, 0]) {
					cylinder(h = 12.2, r = 4.0);
				}
			}
		}
		translate(v = [-48.0, -0.5, 8.8]) {
			cube(size = [8.5, 7.5, 3.3000000000000003]);
		}
		translate(v = [39.5, -0.5, 8.8]) {
			cube(size = [8.5, 7.5, 3.3000000000000003]);
		}
	}
}
